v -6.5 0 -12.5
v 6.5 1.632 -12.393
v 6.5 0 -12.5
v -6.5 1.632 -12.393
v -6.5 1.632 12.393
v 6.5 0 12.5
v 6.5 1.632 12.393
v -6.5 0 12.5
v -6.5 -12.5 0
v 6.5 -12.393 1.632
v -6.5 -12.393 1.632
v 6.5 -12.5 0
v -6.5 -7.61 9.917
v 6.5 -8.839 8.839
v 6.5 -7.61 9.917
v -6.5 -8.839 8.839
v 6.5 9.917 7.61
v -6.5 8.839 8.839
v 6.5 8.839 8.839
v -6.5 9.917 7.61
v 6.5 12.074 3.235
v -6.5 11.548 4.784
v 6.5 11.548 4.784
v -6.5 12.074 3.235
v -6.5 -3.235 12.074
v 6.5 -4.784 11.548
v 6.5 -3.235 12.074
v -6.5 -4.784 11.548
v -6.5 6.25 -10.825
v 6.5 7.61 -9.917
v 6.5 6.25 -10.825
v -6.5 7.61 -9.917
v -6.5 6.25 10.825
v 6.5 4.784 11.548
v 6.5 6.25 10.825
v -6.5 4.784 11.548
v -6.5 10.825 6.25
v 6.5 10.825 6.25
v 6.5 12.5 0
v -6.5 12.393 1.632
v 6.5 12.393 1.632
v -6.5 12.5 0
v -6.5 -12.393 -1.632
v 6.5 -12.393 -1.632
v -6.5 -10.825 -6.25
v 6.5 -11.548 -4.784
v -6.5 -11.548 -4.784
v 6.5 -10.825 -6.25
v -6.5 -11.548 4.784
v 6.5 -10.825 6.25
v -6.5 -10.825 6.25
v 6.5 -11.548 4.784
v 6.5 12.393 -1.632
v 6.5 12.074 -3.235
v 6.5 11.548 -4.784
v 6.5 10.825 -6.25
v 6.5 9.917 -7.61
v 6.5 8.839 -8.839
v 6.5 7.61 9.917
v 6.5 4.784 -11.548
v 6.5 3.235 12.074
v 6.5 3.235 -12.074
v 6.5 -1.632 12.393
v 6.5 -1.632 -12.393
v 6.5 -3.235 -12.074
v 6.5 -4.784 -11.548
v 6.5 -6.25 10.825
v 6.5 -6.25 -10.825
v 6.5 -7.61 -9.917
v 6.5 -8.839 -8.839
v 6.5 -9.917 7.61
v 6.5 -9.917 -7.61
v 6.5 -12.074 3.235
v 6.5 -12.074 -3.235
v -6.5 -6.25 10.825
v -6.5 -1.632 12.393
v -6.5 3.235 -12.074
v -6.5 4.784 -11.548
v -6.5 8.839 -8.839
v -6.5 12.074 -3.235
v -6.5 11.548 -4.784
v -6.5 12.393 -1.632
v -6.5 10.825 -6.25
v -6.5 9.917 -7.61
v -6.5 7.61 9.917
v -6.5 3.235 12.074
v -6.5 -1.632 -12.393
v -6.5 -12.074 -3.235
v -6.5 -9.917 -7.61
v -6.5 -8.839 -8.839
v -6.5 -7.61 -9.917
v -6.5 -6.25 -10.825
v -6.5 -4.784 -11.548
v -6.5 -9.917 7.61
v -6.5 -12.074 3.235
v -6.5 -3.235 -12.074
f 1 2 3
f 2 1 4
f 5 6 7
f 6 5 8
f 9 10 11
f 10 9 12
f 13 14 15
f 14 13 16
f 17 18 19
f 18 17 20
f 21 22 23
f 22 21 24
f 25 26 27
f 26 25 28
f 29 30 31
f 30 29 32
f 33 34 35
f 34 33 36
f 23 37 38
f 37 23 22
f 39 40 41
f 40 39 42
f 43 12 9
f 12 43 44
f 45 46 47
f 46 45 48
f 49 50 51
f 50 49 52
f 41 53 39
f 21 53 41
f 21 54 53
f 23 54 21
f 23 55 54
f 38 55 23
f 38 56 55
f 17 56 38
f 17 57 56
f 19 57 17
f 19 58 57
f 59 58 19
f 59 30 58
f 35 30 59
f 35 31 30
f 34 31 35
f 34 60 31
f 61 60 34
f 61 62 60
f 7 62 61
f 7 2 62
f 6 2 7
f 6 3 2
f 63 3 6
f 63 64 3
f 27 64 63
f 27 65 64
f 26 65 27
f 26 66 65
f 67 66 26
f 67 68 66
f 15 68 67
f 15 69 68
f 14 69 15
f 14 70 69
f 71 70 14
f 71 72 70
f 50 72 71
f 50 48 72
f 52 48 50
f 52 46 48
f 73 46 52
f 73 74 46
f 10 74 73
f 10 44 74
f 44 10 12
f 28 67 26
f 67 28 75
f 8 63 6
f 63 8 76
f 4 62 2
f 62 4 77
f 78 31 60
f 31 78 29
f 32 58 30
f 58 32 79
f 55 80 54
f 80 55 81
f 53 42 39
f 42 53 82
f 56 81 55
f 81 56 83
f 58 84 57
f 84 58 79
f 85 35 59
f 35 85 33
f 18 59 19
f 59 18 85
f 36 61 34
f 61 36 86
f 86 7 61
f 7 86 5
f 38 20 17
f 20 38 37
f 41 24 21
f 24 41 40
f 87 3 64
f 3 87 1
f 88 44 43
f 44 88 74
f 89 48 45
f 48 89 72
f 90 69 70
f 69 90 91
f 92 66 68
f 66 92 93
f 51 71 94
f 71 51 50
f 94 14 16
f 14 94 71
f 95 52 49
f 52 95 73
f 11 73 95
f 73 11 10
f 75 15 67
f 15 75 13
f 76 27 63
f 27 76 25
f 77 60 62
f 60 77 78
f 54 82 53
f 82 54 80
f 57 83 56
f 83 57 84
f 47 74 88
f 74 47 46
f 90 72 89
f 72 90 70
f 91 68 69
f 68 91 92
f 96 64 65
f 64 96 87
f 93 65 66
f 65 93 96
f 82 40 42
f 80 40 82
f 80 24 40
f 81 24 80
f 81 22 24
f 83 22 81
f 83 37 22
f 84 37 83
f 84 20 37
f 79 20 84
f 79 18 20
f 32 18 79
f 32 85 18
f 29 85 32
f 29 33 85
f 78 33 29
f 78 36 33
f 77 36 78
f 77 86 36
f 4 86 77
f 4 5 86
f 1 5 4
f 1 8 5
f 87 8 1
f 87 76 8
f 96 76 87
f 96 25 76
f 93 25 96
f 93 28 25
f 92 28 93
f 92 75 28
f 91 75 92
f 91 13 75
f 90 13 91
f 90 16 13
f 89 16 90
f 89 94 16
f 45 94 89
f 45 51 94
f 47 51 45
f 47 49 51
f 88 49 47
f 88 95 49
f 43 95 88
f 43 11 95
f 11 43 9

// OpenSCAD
$fn = 48;
INNER_SPAN = 113.0;
X_FLANGE_IN_L = -INNER_SPAN / 2.0;
X_FLANGE_IN_R = +INNER_SPAN / 2.0;
MOTOR_ENC_L = 63.0;
MOTOR_D = 25.0;

intersection() {
    translate([X_FLANGE_IN_L, 0, 0])
        rotate([0, 90, 0])
            cylinder(d=MOTOR_D, h=MOTOR_ENC_L);
    
    translate([X_FLANGE_IN_R - MOTOR_ENC_L, 0, 0])
        rotate([0, 90, 0])
            cylinder(d=MOTOR_D, h=MOTOR_ENC_L);
}
